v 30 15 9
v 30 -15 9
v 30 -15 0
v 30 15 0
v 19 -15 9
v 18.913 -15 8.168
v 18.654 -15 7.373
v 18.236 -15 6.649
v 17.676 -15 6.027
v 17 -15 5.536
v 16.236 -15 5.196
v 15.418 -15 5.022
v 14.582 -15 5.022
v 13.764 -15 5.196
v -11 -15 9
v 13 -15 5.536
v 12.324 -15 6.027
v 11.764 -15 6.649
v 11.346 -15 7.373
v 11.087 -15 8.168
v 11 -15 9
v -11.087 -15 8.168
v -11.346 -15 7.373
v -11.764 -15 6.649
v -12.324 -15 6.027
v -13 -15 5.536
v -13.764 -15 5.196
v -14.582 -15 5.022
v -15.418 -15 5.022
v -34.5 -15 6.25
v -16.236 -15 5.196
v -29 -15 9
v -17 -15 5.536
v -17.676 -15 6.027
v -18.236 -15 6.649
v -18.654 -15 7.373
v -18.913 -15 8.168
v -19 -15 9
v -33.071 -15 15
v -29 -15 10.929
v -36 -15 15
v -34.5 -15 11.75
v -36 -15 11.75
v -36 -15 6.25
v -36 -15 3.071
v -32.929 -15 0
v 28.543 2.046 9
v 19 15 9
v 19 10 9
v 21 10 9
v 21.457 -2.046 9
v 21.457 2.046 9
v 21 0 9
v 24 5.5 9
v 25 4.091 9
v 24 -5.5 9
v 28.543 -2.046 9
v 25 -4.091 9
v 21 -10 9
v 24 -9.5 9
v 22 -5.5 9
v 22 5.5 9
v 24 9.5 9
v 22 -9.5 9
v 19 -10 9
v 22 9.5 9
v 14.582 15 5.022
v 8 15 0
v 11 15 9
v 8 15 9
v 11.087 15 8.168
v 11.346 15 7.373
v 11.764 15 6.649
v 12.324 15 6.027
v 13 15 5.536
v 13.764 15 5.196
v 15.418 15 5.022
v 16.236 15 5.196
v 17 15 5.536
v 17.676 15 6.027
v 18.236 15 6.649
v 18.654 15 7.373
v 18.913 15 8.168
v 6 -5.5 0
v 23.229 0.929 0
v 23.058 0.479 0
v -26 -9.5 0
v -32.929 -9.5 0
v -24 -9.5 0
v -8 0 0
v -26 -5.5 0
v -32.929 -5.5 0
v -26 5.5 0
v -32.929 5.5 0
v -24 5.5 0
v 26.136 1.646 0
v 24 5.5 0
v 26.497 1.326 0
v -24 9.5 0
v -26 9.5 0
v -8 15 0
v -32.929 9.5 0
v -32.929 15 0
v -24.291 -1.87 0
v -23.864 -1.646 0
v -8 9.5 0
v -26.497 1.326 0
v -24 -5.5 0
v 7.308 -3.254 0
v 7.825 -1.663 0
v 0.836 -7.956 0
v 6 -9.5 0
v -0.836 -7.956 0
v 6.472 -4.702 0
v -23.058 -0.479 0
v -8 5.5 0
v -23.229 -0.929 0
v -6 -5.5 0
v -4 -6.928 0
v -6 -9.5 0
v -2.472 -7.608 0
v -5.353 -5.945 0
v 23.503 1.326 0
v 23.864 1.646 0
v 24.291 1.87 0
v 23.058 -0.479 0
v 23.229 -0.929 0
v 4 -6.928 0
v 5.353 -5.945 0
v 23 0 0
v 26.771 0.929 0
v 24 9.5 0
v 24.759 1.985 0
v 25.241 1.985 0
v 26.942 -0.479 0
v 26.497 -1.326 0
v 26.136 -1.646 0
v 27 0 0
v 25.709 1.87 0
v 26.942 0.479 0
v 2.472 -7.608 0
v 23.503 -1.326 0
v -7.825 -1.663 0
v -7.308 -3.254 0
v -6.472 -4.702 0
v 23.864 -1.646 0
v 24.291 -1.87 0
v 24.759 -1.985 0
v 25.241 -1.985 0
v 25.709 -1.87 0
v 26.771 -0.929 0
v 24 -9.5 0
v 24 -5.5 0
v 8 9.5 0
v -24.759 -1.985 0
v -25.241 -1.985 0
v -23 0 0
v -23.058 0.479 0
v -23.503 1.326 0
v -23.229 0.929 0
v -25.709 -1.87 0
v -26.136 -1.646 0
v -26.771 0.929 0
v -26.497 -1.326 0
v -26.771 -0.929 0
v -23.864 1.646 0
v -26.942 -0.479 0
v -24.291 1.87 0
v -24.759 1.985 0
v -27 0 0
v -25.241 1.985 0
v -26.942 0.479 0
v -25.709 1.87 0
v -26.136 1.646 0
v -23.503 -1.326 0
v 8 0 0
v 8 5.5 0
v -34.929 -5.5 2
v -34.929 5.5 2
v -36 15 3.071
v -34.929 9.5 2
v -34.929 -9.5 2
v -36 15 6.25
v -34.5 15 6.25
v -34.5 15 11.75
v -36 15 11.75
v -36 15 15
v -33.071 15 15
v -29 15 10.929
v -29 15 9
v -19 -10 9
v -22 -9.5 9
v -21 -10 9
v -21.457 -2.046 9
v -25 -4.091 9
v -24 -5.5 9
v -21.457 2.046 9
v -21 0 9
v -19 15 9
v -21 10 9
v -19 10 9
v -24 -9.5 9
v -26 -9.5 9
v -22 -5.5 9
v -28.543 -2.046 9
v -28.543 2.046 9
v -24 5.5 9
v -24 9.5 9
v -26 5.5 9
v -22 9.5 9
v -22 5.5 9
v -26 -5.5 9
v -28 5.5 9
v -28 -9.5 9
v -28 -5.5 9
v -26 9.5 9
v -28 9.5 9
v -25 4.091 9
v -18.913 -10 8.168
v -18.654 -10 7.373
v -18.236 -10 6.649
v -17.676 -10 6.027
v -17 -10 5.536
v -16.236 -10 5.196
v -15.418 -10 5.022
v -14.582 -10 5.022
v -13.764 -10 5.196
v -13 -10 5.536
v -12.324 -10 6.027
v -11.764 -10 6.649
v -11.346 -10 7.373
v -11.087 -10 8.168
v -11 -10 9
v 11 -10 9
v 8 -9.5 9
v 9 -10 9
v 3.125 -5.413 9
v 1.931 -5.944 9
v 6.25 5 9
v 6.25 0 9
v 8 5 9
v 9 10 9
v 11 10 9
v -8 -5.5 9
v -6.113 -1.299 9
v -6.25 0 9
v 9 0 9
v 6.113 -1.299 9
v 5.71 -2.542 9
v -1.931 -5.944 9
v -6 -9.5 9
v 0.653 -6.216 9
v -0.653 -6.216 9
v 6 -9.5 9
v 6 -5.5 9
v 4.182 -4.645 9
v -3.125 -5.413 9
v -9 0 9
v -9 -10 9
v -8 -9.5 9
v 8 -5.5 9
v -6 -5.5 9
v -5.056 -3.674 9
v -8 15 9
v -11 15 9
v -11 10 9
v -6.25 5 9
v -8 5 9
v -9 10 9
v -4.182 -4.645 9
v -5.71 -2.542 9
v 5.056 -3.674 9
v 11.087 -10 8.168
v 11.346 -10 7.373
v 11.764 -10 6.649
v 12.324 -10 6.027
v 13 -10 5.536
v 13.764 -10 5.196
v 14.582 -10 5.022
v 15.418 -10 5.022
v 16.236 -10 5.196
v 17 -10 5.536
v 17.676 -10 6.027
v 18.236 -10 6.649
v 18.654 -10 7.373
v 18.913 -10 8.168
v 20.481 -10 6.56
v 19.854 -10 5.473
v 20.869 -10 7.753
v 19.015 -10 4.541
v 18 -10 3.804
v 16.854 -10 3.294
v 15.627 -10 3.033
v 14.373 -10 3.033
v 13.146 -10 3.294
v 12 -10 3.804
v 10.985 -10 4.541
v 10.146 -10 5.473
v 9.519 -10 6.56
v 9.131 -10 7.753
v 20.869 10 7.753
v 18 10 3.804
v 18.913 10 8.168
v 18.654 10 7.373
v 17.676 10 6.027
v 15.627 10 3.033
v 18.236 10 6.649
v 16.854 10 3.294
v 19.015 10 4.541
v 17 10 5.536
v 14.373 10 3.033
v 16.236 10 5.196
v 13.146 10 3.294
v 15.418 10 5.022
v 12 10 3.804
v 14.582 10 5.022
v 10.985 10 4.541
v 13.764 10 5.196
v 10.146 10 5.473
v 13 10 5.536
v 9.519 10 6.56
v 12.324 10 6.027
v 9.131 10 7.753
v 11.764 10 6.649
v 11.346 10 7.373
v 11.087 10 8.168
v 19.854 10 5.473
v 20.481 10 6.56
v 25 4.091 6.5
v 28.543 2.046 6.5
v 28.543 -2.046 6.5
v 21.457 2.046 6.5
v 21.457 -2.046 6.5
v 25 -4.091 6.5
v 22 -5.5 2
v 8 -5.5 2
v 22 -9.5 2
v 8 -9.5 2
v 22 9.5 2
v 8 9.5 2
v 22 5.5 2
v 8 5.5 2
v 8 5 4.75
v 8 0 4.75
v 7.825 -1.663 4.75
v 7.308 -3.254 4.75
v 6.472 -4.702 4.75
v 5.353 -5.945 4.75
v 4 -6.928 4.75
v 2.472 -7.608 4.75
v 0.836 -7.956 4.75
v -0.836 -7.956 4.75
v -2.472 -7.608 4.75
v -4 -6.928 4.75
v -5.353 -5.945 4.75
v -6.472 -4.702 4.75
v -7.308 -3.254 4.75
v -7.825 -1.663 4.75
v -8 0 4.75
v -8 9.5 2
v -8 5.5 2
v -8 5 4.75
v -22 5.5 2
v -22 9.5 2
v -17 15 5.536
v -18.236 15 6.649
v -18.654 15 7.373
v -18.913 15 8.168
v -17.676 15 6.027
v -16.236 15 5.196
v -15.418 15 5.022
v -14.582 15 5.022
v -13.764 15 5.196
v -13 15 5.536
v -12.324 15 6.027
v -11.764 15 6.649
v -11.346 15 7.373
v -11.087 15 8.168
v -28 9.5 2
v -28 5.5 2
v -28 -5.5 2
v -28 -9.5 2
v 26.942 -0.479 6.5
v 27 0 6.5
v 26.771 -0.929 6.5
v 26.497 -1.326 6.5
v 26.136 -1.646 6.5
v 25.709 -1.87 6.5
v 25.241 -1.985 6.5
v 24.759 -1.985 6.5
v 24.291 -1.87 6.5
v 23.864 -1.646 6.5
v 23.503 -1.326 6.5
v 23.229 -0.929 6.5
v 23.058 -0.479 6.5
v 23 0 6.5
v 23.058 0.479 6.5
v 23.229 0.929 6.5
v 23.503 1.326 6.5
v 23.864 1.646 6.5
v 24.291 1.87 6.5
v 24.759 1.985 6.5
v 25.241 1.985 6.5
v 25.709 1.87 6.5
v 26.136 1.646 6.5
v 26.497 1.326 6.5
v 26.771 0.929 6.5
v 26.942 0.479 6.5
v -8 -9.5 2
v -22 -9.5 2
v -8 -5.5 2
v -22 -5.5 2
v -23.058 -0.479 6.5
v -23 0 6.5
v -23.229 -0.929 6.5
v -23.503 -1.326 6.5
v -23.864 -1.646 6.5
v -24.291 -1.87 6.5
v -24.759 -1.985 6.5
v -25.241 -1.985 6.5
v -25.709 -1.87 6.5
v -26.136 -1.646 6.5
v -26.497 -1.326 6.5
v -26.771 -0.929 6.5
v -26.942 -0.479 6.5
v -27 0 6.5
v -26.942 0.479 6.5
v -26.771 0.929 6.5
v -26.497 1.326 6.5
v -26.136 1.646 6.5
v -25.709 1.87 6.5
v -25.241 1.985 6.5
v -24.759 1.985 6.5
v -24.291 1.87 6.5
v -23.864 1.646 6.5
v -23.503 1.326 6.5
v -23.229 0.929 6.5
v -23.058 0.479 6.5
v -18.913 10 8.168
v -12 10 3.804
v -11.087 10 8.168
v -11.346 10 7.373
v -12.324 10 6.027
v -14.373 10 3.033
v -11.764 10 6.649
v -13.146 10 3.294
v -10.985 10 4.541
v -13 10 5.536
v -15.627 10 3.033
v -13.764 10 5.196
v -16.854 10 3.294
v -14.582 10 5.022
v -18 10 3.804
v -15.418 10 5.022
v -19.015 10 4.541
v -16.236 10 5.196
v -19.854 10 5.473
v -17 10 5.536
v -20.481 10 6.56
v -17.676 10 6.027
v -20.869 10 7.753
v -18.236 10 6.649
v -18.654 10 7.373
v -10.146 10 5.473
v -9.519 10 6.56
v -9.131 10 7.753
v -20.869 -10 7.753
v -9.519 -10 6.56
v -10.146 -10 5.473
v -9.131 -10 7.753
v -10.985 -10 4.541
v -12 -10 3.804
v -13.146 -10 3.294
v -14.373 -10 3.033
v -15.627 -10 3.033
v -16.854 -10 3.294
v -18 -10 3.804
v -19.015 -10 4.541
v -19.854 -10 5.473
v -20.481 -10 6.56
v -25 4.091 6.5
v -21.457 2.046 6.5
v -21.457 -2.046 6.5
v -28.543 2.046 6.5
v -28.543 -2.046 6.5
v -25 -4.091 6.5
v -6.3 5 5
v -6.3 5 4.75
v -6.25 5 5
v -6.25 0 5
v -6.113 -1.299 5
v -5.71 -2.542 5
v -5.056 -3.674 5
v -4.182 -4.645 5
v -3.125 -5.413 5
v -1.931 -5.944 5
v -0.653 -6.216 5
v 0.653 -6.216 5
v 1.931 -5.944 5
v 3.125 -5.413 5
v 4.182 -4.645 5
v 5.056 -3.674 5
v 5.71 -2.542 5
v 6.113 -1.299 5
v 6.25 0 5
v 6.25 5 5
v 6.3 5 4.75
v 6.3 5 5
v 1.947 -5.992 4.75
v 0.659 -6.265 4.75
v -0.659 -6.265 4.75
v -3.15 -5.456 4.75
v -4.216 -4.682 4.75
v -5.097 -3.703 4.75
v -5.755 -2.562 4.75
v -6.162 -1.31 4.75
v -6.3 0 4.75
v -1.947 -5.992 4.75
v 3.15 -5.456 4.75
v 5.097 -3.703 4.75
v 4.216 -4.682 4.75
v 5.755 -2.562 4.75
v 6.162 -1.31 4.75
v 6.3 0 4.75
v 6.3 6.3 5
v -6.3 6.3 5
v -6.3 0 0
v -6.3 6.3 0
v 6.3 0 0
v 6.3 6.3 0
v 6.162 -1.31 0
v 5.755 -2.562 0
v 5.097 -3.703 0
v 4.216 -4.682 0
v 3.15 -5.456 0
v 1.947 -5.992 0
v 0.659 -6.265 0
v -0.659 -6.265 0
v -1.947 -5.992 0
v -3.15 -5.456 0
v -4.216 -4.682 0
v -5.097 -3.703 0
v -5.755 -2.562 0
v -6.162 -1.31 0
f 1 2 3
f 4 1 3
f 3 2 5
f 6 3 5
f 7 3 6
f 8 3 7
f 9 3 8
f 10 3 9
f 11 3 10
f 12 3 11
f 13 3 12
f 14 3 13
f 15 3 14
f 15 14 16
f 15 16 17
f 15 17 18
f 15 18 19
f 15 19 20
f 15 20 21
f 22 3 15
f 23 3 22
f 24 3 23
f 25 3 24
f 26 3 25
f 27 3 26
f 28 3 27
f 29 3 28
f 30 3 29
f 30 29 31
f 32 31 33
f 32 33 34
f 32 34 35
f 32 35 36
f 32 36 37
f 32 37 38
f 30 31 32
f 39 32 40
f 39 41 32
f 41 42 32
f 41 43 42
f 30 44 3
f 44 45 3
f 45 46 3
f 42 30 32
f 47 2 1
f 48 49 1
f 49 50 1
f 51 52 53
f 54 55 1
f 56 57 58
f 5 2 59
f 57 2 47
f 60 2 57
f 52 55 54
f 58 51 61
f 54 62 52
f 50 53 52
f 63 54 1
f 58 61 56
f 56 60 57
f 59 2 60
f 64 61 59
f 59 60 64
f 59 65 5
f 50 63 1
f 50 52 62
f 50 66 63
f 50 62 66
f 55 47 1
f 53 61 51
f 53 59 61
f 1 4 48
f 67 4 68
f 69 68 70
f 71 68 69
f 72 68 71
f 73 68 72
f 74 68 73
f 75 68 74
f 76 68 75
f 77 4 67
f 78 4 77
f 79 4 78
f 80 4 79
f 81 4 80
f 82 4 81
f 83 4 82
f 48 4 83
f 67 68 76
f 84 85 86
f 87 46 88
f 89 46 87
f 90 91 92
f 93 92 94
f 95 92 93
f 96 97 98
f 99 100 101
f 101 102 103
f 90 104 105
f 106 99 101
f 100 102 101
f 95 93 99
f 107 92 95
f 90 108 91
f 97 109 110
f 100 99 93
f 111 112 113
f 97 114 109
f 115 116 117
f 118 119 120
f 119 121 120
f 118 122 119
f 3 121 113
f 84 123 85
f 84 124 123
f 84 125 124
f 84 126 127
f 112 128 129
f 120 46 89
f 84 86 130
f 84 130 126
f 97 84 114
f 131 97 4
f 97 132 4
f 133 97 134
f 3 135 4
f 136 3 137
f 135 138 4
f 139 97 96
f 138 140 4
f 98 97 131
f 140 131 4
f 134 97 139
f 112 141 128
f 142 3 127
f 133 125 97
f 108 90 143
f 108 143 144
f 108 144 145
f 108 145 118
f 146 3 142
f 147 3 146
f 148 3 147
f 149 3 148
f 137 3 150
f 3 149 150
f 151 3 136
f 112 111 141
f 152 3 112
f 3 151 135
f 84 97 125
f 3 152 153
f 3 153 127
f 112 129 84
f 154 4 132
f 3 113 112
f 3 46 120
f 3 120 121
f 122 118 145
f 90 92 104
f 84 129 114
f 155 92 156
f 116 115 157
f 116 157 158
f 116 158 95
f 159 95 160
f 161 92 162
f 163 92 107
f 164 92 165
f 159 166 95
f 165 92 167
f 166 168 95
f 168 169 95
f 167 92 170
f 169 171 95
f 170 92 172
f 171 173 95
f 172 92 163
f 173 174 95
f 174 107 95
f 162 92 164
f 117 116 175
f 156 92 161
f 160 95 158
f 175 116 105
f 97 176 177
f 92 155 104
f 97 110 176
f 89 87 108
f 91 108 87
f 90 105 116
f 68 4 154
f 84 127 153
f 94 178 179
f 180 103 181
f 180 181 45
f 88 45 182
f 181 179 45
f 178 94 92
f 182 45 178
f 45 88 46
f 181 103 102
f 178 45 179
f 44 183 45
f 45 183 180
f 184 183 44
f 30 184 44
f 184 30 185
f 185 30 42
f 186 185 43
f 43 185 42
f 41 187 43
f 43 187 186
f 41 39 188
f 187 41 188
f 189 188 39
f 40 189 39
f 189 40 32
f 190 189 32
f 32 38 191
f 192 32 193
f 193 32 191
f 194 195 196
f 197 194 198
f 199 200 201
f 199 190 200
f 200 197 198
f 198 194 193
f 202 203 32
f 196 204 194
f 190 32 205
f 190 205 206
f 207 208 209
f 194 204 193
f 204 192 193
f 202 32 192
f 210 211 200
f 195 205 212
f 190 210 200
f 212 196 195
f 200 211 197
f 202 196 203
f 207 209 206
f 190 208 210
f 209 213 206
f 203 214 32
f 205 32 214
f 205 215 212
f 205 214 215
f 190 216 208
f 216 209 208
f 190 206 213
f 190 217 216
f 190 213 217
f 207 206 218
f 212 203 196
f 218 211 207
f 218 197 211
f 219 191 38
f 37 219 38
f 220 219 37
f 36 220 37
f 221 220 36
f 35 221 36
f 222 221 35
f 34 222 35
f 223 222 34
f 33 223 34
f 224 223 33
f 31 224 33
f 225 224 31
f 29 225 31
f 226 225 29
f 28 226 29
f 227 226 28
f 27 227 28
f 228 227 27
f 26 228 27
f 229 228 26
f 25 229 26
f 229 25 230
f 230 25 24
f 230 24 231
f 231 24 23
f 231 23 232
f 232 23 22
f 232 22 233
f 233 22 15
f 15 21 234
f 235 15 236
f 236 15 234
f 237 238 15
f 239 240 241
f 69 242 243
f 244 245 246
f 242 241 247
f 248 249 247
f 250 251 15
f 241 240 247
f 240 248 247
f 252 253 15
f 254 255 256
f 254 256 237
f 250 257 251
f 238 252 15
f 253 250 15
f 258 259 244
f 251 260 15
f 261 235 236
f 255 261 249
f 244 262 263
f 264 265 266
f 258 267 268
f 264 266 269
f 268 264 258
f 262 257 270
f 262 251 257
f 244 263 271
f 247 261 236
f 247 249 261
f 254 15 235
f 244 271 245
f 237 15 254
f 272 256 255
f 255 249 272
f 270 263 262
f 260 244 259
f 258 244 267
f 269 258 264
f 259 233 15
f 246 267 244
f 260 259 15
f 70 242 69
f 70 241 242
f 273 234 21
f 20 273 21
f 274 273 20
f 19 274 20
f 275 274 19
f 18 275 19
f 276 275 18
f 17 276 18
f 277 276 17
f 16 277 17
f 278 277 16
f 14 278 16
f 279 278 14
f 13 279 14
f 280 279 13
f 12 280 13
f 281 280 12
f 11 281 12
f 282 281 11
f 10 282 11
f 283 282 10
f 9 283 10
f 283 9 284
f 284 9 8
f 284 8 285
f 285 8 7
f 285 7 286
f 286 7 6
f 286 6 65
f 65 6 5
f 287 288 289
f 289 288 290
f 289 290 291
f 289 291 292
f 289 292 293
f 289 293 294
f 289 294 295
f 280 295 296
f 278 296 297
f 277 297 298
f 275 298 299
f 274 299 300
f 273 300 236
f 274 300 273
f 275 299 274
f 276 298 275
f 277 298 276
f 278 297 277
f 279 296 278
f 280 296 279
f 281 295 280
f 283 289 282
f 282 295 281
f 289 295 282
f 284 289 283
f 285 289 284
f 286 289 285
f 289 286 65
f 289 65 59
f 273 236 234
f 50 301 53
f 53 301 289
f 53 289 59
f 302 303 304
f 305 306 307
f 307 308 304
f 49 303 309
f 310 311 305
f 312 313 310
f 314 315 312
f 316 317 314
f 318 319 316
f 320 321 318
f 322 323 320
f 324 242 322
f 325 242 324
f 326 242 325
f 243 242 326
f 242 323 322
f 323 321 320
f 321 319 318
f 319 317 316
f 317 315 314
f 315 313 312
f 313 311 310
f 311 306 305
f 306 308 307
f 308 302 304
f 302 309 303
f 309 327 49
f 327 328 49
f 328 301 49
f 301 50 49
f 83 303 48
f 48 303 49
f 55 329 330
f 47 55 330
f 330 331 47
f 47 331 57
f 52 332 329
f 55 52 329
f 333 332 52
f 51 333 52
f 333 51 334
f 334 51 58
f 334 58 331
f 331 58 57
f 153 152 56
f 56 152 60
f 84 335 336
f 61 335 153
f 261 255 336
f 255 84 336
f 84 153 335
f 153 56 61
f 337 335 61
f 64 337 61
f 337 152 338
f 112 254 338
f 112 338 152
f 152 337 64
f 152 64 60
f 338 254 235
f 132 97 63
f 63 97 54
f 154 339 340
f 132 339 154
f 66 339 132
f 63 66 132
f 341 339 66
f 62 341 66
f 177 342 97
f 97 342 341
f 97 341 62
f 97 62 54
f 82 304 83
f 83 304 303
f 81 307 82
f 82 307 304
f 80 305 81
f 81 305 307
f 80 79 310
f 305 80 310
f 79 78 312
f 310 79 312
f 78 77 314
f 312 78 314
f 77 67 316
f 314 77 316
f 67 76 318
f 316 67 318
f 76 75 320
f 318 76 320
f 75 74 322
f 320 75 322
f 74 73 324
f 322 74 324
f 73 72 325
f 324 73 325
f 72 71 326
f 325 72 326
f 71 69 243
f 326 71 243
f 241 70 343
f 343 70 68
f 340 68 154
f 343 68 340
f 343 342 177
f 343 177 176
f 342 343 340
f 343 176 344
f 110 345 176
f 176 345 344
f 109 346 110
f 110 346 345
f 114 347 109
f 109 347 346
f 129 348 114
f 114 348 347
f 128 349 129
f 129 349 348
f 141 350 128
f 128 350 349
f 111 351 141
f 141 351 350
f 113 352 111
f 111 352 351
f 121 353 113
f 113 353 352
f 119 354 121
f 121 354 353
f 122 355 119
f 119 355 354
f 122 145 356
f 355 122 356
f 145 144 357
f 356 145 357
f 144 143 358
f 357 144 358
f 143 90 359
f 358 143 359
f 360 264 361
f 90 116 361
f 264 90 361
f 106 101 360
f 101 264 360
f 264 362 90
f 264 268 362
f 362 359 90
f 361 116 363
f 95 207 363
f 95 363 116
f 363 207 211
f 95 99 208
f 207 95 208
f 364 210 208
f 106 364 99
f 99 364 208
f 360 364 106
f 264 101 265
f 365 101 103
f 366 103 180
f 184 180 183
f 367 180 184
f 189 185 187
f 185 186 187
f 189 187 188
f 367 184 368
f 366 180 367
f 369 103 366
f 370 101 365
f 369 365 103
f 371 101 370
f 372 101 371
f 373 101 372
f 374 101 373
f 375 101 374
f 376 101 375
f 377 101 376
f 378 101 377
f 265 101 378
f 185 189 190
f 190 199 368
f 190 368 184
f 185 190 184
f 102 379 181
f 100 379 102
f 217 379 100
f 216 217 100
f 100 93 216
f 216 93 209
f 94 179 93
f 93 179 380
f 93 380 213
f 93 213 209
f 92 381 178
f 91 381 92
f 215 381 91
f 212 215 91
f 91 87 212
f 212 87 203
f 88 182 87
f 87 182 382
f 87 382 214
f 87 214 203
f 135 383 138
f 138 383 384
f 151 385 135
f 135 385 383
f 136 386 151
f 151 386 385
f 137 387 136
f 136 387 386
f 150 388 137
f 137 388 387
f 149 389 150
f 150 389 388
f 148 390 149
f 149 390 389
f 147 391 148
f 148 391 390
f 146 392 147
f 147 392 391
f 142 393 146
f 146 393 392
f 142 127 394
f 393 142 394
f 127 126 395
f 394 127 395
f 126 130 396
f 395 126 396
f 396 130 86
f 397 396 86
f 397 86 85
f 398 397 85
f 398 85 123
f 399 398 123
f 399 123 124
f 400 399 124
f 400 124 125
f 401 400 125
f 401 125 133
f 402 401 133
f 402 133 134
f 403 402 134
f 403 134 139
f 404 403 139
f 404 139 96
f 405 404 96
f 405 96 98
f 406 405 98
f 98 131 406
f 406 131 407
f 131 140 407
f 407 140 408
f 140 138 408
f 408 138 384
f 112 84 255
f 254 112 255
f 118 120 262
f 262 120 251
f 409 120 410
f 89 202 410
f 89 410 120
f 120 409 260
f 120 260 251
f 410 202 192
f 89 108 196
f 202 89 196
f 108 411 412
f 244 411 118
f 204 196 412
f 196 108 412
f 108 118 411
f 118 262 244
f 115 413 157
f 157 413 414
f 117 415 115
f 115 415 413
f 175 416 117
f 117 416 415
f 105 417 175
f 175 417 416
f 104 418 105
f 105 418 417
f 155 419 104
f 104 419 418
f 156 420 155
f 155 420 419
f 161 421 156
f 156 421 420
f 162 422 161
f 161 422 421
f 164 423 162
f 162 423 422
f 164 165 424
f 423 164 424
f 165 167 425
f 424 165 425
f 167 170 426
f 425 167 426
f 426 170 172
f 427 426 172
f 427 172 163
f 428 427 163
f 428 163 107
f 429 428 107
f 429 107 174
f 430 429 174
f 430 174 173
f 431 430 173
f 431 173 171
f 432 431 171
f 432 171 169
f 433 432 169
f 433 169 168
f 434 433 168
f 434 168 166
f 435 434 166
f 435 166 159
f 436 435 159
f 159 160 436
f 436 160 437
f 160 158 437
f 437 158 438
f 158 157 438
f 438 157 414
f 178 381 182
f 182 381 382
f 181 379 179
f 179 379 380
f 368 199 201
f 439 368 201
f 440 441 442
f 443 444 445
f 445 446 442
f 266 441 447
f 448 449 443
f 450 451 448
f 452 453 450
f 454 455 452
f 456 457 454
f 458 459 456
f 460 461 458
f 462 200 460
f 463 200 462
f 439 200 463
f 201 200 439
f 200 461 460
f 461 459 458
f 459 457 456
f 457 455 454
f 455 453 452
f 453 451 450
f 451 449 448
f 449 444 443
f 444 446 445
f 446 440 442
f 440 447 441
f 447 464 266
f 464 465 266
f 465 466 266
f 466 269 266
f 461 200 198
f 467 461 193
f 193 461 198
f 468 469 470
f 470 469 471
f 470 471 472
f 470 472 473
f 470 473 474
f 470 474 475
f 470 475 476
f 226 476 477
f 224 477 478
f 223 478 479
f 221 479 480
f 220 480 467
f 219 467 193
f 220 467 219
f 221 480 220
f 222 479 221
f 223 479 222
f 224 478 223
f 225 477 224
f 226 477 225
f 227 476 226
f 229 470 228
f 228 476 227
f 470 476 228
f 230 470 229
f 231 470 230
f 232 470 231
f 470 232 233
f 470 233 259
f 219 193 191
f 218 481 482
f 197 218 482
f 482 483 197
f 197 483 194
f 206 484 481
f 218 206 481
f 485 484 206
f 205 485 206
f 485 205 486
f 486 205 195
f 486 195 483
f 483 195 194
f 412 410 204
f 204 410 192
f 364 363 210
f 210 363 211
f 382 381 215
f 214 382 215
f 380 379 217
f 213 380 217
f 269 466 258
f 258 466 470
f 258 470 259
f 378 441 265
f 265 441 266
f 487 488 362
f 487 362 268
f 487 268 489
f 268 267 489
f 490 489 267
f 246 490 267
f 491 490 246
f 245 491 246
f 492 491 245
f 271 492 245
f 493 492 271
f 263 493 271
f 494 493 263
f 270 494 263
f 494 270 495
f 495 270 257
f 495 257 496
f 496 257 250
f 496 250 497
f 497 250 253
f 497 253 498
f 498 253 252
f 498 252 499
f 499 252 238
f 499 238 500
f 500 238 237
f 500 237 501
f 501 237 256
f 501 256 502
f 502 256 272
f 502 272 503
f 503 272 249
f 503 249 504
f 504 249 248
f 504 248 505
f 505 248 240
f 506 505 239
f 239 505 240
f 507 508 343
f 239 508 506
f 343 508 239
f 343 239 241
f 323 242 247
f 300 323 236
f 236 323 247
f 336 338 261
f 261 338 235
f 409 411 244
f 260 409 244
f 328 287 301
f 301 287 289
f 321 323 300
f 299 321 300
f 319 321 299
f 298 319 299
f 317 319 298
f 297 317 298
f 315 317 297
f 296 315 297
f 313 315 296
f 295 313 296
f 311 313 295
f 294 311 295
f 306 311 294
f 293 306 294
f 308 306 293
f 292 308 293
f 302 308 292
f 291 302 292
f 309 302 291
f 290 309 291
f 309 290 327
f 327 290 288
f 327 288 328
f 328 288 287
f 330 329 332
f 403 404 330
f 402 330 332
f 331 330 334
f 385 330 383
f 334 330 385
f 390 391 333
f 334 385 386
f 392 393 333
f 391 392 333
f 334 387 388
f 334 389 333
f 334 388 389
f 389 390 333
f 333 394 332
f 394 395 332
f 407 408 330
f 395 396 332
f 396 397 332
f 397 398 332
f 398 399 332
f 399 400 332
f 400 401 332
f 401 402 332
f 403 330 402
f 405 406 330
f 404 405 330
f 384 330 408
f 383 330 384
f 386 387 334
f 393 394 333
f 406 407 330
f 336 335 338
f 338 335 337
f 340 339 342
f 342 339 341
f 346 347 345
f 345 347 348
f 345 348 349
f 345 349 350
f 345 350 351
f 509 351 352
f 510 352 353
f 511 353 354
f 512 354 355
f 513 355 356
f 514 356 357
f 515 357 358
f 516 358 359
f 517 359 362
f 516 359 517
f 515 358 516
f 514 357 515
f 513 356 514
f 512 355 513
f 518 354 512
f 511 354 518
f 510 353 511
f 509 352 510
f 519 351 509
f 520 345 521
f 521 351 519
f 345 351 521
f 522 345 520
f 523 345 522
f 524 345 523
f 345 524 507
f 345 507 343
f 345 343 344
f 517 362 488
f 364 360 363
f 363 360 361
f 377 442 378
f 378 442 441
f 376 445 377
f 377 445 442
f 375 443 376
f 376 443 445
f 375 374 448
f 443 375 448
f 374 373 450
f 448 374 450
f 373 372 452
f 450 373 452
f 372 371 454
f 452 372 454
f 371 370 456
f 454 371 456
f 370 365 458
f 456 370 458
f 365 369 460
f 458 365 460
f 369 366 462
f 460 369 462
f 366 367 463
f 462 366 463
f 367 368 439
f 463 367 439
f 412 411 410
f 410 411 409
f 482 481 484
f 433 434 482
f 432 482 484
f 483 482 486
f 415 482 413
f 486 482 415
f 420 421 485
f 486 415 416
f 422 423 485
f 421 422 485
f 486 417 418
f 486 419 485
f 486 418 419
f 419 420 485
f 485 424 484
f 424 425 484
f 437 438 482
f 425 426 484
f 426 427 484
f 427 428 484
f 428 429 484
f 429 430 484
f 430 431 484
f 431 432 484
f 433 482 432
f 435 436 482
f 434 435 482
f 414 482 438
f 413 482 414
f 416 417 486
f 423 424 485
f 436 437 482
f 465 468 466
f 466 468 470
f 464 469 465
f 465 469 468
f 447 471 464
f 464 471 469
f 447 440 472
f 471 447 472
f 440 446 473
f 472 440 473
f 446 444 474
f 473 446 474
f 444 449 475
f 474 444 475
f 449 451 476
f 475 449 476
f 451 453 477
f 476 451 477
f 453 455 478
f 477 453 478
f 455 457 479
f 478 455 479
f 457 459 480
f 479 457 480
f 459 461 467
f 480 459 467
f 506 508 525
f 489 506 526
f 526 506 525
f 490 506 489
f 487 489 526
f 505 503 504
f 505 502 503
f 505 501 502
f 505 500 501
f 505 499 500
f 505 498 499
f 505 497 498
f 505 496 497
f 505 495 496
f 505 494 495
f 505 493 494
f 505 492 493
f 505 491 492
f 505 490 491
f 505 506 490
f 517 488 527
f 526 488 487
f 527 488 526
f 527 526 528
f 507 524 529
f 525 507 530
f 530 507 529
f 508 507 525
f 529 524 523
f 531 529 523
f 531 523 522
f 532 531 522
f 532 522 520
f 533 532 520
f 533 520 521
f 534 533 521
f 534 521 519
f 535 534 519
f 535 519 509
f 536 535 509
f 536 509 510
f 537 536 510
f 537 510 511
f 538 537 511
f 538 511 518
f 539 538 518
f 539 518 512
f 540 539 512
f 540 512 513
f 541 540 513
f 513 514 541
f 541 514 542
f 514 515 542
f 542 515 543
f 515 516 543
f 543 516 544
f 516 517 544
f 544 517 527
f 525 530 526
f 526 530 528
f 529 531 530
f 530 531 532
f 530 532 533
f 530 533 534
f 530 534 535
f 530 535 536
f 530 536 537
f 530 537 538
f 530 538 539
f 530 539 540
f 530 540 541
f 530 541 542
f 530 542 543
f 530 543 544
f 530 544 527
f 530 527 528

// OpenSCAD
$fs = 0.5;

translate([0,0,9]) rotate([0,180,0])
{
	%translate([15, 0, 0]) rotate([90,0,0]) cylinder(r=3, h=120, center=true);
	%translate([-15, 0, 0]) rotate([90,0,0]) cylinder(r=3, h=120, center=true);
	%translate([36, 0, 0])  cube([2.5, 120, 5], center=true);

	difference()
	{
		// plate
		union()
		{
			translate([0,0,9/2])cube([60, 30, 9], center=true);
			translate([32.5,0,1.5])cube([7, 30, 15], center=true);		
		}

		// lm6uus
		translate([15, 0, 0]) rotate([90,0,0]) cylinder(r=6, h=20, center=true);
		translate([-15, 0, 0]) rotate([90,0,0]) cylinder(r=6, h=20, center=true);

		// lm6uus
		translate([15, 0, 0]) rotate([90,0,0]) cylinder(r=4, h=40, center=true);
		translate([-15, 0, 0]) rotate([90,0,0]) cylinder(r=4, h=40, center=true);

		// jhead
		cylinder(r=12.5/2, h=30, center=true);
		translate([0,10,0])cube([12.5, 20, 30], center=true);
		translate([0,0,4.25+15]) cylinder(r=16/2, h=30, center=true);
		translate([0,10,4.25+15])cube([16, 20, 30], center=true);
		translate([0,15,0])cube([16, 20, 30], center=true);
	
		// cable tie
		translate([23, 7.5, 0]) cube([2, 4, 20], center=true);
		translate([15, 7.5, 8]) cube([16, 4, 2], center=true);

		translate([23, -7.5, 0]) cube([2, 4, 20], center=true);
		translate([7, -7.5, 0]) cube([2, 4, 20], center=true);
		translate([15, -7.5, 8]) cube([16, 4, 2], center=true);

		translate([-23, 7.5, 0]) cube([2, 4, 20], center=true);
		translate([-15, 7.5, 8]) cube([16, 4, 2], center=true);

		translate([-23, -7.5, 0]) cube([2, 4, 20], center=true);
		translate([-7, -7.5, 0]) cube([2, 4, 20], center=true);
		translate([-15, -7.5, 8]) cube([16, 4, 2], center=true);

		// mounts
		translate([-25,0,0]) cylinder(r=4/2, h=30, center=true);
		translate([25,0,0]) cylinder(r=4/2, h=30, center=true);
		translate([-25,0,0]) rotate([0,0,30]) cylinder(r=7 / 2 / cos(180 / 6) + 0.05, h=5, $fn=6, center=true);
		translate([25,0,0]) rotate([0,0,30]) cylinder(r=7 / 2 / cos(180 / 6) + 0.05, h=5, $fn=6, center=true);

		// belt
		translate([36, 0, 0])  cube([3, 70, 5.5], center=true);	

		// diagonals
		translate([40, 0, 9]) rotate([0, 45, 0]) cube([10, 70, 10], center=true);
		translate([28, 0, -8]) rotate([0, 45, 0]) cube([10, 70, 10], center=true);

		// another cable tie
		translate([20+23, -7.5, 0]) cube([2, 4, 20], center=true);
		translate([20+7, -7.5, 0]) cube([2, 4, 20], center=true);
		translate([20+15, -7.5, 8]) cube([16, 4, 2], center=true);

		translate([20+23, 7.5, 0]) cube([2, 4, 20], center=true);
		translate([20+7, 7.5, 0]) cube([2, 4, 20], center=true);
		translate([20+15, 7.5, 8]) cube([16, 4, 2], center=true);
	}
		//supports
		translate ([0,0,6.5]) cylinder(r=12.6/2, h=5, center=true); 
		translate ([0,12.6/4,6.5]) cube([12.6, 12.6/2, 5], center=true);

}
